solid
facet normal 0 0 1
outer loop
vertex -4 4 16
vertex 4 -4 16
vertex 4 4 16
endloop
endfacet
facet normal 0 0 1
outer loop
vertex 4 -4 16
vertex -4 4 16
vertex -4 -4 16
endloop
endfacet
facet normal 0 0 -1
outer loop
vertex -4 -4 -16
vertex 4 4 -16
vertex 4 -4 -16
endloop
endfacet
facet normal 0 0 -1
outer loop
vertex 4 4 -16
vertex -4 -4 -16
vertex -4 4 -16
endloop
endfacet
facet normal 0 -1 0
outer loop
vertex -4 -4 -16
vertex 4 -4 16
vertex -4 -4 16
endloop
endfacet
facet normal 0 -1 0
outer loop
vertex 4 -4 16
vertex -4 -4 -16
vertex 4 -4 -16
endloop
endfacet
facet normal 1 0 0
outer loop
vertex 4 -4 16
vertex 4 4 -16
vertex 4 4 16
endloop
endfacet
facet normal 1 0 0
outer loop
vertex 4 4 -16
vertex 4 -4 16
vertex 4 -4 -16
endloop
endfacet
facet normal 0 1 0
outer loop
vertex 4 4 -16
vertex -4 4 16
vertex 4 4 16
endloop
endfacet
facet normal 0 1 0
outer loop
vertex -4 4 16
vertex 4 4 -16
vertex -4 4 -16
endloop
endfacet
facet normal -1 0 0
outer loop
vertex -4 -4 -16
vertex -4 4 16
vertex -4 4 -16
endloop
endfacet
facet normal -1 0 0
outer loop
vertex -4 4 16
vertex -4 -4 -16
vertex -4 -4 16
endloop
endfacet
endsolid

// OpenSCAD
size=32; //block=32 //item=8


cube([size*0.25,size*0.25,size*1],center=true);
